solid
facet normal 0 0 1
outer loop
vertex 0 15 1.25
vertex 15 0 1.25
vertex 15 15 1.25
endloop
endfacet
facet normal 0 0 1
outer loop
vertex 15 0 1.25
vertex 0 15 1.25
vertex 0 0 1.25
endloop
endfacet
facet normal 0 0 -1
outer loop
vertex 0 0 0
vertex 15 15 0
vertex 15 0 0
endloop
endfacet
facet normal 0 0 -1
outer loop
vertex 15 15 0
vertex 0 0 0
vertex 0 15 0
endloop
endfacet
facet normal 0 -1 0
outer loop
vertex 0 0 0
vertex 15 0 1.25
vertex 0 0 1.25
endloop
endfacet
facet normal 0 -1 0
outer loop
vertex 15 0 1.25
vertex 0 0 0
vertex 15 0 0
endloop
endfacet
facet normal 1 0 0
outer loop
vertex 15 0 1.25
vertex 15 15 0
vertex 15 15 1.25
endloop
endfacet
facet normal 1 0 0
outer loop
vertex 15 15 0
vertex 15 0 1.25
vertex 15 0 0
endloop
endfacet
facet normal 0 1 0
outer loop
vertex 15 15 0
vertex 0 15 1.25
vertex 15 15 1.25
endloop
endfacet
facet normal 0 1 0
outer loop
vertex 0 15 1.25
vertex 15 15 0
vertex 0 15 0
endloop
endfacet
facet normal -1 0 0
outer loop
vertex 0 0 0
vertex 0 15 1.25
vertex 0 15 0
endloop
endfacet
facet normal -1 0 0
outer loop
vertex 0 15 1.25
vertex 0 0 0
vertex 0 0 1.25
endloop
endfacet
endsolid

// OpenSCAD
/* Warning, this is a very basic generator with a lot of approximation 
input data : [LFBGA, APB, 15x15x1.25mm, 256, , A, C04-21125A]
generated by com.zoubworld.electronics.cad.model3d.Basic
Date : Sun Feb 15 10:50:49 CET 2026
*/

//body
color("black")
translate([0,0,0])
cube([15.0,15.0,1.25], center=false);
